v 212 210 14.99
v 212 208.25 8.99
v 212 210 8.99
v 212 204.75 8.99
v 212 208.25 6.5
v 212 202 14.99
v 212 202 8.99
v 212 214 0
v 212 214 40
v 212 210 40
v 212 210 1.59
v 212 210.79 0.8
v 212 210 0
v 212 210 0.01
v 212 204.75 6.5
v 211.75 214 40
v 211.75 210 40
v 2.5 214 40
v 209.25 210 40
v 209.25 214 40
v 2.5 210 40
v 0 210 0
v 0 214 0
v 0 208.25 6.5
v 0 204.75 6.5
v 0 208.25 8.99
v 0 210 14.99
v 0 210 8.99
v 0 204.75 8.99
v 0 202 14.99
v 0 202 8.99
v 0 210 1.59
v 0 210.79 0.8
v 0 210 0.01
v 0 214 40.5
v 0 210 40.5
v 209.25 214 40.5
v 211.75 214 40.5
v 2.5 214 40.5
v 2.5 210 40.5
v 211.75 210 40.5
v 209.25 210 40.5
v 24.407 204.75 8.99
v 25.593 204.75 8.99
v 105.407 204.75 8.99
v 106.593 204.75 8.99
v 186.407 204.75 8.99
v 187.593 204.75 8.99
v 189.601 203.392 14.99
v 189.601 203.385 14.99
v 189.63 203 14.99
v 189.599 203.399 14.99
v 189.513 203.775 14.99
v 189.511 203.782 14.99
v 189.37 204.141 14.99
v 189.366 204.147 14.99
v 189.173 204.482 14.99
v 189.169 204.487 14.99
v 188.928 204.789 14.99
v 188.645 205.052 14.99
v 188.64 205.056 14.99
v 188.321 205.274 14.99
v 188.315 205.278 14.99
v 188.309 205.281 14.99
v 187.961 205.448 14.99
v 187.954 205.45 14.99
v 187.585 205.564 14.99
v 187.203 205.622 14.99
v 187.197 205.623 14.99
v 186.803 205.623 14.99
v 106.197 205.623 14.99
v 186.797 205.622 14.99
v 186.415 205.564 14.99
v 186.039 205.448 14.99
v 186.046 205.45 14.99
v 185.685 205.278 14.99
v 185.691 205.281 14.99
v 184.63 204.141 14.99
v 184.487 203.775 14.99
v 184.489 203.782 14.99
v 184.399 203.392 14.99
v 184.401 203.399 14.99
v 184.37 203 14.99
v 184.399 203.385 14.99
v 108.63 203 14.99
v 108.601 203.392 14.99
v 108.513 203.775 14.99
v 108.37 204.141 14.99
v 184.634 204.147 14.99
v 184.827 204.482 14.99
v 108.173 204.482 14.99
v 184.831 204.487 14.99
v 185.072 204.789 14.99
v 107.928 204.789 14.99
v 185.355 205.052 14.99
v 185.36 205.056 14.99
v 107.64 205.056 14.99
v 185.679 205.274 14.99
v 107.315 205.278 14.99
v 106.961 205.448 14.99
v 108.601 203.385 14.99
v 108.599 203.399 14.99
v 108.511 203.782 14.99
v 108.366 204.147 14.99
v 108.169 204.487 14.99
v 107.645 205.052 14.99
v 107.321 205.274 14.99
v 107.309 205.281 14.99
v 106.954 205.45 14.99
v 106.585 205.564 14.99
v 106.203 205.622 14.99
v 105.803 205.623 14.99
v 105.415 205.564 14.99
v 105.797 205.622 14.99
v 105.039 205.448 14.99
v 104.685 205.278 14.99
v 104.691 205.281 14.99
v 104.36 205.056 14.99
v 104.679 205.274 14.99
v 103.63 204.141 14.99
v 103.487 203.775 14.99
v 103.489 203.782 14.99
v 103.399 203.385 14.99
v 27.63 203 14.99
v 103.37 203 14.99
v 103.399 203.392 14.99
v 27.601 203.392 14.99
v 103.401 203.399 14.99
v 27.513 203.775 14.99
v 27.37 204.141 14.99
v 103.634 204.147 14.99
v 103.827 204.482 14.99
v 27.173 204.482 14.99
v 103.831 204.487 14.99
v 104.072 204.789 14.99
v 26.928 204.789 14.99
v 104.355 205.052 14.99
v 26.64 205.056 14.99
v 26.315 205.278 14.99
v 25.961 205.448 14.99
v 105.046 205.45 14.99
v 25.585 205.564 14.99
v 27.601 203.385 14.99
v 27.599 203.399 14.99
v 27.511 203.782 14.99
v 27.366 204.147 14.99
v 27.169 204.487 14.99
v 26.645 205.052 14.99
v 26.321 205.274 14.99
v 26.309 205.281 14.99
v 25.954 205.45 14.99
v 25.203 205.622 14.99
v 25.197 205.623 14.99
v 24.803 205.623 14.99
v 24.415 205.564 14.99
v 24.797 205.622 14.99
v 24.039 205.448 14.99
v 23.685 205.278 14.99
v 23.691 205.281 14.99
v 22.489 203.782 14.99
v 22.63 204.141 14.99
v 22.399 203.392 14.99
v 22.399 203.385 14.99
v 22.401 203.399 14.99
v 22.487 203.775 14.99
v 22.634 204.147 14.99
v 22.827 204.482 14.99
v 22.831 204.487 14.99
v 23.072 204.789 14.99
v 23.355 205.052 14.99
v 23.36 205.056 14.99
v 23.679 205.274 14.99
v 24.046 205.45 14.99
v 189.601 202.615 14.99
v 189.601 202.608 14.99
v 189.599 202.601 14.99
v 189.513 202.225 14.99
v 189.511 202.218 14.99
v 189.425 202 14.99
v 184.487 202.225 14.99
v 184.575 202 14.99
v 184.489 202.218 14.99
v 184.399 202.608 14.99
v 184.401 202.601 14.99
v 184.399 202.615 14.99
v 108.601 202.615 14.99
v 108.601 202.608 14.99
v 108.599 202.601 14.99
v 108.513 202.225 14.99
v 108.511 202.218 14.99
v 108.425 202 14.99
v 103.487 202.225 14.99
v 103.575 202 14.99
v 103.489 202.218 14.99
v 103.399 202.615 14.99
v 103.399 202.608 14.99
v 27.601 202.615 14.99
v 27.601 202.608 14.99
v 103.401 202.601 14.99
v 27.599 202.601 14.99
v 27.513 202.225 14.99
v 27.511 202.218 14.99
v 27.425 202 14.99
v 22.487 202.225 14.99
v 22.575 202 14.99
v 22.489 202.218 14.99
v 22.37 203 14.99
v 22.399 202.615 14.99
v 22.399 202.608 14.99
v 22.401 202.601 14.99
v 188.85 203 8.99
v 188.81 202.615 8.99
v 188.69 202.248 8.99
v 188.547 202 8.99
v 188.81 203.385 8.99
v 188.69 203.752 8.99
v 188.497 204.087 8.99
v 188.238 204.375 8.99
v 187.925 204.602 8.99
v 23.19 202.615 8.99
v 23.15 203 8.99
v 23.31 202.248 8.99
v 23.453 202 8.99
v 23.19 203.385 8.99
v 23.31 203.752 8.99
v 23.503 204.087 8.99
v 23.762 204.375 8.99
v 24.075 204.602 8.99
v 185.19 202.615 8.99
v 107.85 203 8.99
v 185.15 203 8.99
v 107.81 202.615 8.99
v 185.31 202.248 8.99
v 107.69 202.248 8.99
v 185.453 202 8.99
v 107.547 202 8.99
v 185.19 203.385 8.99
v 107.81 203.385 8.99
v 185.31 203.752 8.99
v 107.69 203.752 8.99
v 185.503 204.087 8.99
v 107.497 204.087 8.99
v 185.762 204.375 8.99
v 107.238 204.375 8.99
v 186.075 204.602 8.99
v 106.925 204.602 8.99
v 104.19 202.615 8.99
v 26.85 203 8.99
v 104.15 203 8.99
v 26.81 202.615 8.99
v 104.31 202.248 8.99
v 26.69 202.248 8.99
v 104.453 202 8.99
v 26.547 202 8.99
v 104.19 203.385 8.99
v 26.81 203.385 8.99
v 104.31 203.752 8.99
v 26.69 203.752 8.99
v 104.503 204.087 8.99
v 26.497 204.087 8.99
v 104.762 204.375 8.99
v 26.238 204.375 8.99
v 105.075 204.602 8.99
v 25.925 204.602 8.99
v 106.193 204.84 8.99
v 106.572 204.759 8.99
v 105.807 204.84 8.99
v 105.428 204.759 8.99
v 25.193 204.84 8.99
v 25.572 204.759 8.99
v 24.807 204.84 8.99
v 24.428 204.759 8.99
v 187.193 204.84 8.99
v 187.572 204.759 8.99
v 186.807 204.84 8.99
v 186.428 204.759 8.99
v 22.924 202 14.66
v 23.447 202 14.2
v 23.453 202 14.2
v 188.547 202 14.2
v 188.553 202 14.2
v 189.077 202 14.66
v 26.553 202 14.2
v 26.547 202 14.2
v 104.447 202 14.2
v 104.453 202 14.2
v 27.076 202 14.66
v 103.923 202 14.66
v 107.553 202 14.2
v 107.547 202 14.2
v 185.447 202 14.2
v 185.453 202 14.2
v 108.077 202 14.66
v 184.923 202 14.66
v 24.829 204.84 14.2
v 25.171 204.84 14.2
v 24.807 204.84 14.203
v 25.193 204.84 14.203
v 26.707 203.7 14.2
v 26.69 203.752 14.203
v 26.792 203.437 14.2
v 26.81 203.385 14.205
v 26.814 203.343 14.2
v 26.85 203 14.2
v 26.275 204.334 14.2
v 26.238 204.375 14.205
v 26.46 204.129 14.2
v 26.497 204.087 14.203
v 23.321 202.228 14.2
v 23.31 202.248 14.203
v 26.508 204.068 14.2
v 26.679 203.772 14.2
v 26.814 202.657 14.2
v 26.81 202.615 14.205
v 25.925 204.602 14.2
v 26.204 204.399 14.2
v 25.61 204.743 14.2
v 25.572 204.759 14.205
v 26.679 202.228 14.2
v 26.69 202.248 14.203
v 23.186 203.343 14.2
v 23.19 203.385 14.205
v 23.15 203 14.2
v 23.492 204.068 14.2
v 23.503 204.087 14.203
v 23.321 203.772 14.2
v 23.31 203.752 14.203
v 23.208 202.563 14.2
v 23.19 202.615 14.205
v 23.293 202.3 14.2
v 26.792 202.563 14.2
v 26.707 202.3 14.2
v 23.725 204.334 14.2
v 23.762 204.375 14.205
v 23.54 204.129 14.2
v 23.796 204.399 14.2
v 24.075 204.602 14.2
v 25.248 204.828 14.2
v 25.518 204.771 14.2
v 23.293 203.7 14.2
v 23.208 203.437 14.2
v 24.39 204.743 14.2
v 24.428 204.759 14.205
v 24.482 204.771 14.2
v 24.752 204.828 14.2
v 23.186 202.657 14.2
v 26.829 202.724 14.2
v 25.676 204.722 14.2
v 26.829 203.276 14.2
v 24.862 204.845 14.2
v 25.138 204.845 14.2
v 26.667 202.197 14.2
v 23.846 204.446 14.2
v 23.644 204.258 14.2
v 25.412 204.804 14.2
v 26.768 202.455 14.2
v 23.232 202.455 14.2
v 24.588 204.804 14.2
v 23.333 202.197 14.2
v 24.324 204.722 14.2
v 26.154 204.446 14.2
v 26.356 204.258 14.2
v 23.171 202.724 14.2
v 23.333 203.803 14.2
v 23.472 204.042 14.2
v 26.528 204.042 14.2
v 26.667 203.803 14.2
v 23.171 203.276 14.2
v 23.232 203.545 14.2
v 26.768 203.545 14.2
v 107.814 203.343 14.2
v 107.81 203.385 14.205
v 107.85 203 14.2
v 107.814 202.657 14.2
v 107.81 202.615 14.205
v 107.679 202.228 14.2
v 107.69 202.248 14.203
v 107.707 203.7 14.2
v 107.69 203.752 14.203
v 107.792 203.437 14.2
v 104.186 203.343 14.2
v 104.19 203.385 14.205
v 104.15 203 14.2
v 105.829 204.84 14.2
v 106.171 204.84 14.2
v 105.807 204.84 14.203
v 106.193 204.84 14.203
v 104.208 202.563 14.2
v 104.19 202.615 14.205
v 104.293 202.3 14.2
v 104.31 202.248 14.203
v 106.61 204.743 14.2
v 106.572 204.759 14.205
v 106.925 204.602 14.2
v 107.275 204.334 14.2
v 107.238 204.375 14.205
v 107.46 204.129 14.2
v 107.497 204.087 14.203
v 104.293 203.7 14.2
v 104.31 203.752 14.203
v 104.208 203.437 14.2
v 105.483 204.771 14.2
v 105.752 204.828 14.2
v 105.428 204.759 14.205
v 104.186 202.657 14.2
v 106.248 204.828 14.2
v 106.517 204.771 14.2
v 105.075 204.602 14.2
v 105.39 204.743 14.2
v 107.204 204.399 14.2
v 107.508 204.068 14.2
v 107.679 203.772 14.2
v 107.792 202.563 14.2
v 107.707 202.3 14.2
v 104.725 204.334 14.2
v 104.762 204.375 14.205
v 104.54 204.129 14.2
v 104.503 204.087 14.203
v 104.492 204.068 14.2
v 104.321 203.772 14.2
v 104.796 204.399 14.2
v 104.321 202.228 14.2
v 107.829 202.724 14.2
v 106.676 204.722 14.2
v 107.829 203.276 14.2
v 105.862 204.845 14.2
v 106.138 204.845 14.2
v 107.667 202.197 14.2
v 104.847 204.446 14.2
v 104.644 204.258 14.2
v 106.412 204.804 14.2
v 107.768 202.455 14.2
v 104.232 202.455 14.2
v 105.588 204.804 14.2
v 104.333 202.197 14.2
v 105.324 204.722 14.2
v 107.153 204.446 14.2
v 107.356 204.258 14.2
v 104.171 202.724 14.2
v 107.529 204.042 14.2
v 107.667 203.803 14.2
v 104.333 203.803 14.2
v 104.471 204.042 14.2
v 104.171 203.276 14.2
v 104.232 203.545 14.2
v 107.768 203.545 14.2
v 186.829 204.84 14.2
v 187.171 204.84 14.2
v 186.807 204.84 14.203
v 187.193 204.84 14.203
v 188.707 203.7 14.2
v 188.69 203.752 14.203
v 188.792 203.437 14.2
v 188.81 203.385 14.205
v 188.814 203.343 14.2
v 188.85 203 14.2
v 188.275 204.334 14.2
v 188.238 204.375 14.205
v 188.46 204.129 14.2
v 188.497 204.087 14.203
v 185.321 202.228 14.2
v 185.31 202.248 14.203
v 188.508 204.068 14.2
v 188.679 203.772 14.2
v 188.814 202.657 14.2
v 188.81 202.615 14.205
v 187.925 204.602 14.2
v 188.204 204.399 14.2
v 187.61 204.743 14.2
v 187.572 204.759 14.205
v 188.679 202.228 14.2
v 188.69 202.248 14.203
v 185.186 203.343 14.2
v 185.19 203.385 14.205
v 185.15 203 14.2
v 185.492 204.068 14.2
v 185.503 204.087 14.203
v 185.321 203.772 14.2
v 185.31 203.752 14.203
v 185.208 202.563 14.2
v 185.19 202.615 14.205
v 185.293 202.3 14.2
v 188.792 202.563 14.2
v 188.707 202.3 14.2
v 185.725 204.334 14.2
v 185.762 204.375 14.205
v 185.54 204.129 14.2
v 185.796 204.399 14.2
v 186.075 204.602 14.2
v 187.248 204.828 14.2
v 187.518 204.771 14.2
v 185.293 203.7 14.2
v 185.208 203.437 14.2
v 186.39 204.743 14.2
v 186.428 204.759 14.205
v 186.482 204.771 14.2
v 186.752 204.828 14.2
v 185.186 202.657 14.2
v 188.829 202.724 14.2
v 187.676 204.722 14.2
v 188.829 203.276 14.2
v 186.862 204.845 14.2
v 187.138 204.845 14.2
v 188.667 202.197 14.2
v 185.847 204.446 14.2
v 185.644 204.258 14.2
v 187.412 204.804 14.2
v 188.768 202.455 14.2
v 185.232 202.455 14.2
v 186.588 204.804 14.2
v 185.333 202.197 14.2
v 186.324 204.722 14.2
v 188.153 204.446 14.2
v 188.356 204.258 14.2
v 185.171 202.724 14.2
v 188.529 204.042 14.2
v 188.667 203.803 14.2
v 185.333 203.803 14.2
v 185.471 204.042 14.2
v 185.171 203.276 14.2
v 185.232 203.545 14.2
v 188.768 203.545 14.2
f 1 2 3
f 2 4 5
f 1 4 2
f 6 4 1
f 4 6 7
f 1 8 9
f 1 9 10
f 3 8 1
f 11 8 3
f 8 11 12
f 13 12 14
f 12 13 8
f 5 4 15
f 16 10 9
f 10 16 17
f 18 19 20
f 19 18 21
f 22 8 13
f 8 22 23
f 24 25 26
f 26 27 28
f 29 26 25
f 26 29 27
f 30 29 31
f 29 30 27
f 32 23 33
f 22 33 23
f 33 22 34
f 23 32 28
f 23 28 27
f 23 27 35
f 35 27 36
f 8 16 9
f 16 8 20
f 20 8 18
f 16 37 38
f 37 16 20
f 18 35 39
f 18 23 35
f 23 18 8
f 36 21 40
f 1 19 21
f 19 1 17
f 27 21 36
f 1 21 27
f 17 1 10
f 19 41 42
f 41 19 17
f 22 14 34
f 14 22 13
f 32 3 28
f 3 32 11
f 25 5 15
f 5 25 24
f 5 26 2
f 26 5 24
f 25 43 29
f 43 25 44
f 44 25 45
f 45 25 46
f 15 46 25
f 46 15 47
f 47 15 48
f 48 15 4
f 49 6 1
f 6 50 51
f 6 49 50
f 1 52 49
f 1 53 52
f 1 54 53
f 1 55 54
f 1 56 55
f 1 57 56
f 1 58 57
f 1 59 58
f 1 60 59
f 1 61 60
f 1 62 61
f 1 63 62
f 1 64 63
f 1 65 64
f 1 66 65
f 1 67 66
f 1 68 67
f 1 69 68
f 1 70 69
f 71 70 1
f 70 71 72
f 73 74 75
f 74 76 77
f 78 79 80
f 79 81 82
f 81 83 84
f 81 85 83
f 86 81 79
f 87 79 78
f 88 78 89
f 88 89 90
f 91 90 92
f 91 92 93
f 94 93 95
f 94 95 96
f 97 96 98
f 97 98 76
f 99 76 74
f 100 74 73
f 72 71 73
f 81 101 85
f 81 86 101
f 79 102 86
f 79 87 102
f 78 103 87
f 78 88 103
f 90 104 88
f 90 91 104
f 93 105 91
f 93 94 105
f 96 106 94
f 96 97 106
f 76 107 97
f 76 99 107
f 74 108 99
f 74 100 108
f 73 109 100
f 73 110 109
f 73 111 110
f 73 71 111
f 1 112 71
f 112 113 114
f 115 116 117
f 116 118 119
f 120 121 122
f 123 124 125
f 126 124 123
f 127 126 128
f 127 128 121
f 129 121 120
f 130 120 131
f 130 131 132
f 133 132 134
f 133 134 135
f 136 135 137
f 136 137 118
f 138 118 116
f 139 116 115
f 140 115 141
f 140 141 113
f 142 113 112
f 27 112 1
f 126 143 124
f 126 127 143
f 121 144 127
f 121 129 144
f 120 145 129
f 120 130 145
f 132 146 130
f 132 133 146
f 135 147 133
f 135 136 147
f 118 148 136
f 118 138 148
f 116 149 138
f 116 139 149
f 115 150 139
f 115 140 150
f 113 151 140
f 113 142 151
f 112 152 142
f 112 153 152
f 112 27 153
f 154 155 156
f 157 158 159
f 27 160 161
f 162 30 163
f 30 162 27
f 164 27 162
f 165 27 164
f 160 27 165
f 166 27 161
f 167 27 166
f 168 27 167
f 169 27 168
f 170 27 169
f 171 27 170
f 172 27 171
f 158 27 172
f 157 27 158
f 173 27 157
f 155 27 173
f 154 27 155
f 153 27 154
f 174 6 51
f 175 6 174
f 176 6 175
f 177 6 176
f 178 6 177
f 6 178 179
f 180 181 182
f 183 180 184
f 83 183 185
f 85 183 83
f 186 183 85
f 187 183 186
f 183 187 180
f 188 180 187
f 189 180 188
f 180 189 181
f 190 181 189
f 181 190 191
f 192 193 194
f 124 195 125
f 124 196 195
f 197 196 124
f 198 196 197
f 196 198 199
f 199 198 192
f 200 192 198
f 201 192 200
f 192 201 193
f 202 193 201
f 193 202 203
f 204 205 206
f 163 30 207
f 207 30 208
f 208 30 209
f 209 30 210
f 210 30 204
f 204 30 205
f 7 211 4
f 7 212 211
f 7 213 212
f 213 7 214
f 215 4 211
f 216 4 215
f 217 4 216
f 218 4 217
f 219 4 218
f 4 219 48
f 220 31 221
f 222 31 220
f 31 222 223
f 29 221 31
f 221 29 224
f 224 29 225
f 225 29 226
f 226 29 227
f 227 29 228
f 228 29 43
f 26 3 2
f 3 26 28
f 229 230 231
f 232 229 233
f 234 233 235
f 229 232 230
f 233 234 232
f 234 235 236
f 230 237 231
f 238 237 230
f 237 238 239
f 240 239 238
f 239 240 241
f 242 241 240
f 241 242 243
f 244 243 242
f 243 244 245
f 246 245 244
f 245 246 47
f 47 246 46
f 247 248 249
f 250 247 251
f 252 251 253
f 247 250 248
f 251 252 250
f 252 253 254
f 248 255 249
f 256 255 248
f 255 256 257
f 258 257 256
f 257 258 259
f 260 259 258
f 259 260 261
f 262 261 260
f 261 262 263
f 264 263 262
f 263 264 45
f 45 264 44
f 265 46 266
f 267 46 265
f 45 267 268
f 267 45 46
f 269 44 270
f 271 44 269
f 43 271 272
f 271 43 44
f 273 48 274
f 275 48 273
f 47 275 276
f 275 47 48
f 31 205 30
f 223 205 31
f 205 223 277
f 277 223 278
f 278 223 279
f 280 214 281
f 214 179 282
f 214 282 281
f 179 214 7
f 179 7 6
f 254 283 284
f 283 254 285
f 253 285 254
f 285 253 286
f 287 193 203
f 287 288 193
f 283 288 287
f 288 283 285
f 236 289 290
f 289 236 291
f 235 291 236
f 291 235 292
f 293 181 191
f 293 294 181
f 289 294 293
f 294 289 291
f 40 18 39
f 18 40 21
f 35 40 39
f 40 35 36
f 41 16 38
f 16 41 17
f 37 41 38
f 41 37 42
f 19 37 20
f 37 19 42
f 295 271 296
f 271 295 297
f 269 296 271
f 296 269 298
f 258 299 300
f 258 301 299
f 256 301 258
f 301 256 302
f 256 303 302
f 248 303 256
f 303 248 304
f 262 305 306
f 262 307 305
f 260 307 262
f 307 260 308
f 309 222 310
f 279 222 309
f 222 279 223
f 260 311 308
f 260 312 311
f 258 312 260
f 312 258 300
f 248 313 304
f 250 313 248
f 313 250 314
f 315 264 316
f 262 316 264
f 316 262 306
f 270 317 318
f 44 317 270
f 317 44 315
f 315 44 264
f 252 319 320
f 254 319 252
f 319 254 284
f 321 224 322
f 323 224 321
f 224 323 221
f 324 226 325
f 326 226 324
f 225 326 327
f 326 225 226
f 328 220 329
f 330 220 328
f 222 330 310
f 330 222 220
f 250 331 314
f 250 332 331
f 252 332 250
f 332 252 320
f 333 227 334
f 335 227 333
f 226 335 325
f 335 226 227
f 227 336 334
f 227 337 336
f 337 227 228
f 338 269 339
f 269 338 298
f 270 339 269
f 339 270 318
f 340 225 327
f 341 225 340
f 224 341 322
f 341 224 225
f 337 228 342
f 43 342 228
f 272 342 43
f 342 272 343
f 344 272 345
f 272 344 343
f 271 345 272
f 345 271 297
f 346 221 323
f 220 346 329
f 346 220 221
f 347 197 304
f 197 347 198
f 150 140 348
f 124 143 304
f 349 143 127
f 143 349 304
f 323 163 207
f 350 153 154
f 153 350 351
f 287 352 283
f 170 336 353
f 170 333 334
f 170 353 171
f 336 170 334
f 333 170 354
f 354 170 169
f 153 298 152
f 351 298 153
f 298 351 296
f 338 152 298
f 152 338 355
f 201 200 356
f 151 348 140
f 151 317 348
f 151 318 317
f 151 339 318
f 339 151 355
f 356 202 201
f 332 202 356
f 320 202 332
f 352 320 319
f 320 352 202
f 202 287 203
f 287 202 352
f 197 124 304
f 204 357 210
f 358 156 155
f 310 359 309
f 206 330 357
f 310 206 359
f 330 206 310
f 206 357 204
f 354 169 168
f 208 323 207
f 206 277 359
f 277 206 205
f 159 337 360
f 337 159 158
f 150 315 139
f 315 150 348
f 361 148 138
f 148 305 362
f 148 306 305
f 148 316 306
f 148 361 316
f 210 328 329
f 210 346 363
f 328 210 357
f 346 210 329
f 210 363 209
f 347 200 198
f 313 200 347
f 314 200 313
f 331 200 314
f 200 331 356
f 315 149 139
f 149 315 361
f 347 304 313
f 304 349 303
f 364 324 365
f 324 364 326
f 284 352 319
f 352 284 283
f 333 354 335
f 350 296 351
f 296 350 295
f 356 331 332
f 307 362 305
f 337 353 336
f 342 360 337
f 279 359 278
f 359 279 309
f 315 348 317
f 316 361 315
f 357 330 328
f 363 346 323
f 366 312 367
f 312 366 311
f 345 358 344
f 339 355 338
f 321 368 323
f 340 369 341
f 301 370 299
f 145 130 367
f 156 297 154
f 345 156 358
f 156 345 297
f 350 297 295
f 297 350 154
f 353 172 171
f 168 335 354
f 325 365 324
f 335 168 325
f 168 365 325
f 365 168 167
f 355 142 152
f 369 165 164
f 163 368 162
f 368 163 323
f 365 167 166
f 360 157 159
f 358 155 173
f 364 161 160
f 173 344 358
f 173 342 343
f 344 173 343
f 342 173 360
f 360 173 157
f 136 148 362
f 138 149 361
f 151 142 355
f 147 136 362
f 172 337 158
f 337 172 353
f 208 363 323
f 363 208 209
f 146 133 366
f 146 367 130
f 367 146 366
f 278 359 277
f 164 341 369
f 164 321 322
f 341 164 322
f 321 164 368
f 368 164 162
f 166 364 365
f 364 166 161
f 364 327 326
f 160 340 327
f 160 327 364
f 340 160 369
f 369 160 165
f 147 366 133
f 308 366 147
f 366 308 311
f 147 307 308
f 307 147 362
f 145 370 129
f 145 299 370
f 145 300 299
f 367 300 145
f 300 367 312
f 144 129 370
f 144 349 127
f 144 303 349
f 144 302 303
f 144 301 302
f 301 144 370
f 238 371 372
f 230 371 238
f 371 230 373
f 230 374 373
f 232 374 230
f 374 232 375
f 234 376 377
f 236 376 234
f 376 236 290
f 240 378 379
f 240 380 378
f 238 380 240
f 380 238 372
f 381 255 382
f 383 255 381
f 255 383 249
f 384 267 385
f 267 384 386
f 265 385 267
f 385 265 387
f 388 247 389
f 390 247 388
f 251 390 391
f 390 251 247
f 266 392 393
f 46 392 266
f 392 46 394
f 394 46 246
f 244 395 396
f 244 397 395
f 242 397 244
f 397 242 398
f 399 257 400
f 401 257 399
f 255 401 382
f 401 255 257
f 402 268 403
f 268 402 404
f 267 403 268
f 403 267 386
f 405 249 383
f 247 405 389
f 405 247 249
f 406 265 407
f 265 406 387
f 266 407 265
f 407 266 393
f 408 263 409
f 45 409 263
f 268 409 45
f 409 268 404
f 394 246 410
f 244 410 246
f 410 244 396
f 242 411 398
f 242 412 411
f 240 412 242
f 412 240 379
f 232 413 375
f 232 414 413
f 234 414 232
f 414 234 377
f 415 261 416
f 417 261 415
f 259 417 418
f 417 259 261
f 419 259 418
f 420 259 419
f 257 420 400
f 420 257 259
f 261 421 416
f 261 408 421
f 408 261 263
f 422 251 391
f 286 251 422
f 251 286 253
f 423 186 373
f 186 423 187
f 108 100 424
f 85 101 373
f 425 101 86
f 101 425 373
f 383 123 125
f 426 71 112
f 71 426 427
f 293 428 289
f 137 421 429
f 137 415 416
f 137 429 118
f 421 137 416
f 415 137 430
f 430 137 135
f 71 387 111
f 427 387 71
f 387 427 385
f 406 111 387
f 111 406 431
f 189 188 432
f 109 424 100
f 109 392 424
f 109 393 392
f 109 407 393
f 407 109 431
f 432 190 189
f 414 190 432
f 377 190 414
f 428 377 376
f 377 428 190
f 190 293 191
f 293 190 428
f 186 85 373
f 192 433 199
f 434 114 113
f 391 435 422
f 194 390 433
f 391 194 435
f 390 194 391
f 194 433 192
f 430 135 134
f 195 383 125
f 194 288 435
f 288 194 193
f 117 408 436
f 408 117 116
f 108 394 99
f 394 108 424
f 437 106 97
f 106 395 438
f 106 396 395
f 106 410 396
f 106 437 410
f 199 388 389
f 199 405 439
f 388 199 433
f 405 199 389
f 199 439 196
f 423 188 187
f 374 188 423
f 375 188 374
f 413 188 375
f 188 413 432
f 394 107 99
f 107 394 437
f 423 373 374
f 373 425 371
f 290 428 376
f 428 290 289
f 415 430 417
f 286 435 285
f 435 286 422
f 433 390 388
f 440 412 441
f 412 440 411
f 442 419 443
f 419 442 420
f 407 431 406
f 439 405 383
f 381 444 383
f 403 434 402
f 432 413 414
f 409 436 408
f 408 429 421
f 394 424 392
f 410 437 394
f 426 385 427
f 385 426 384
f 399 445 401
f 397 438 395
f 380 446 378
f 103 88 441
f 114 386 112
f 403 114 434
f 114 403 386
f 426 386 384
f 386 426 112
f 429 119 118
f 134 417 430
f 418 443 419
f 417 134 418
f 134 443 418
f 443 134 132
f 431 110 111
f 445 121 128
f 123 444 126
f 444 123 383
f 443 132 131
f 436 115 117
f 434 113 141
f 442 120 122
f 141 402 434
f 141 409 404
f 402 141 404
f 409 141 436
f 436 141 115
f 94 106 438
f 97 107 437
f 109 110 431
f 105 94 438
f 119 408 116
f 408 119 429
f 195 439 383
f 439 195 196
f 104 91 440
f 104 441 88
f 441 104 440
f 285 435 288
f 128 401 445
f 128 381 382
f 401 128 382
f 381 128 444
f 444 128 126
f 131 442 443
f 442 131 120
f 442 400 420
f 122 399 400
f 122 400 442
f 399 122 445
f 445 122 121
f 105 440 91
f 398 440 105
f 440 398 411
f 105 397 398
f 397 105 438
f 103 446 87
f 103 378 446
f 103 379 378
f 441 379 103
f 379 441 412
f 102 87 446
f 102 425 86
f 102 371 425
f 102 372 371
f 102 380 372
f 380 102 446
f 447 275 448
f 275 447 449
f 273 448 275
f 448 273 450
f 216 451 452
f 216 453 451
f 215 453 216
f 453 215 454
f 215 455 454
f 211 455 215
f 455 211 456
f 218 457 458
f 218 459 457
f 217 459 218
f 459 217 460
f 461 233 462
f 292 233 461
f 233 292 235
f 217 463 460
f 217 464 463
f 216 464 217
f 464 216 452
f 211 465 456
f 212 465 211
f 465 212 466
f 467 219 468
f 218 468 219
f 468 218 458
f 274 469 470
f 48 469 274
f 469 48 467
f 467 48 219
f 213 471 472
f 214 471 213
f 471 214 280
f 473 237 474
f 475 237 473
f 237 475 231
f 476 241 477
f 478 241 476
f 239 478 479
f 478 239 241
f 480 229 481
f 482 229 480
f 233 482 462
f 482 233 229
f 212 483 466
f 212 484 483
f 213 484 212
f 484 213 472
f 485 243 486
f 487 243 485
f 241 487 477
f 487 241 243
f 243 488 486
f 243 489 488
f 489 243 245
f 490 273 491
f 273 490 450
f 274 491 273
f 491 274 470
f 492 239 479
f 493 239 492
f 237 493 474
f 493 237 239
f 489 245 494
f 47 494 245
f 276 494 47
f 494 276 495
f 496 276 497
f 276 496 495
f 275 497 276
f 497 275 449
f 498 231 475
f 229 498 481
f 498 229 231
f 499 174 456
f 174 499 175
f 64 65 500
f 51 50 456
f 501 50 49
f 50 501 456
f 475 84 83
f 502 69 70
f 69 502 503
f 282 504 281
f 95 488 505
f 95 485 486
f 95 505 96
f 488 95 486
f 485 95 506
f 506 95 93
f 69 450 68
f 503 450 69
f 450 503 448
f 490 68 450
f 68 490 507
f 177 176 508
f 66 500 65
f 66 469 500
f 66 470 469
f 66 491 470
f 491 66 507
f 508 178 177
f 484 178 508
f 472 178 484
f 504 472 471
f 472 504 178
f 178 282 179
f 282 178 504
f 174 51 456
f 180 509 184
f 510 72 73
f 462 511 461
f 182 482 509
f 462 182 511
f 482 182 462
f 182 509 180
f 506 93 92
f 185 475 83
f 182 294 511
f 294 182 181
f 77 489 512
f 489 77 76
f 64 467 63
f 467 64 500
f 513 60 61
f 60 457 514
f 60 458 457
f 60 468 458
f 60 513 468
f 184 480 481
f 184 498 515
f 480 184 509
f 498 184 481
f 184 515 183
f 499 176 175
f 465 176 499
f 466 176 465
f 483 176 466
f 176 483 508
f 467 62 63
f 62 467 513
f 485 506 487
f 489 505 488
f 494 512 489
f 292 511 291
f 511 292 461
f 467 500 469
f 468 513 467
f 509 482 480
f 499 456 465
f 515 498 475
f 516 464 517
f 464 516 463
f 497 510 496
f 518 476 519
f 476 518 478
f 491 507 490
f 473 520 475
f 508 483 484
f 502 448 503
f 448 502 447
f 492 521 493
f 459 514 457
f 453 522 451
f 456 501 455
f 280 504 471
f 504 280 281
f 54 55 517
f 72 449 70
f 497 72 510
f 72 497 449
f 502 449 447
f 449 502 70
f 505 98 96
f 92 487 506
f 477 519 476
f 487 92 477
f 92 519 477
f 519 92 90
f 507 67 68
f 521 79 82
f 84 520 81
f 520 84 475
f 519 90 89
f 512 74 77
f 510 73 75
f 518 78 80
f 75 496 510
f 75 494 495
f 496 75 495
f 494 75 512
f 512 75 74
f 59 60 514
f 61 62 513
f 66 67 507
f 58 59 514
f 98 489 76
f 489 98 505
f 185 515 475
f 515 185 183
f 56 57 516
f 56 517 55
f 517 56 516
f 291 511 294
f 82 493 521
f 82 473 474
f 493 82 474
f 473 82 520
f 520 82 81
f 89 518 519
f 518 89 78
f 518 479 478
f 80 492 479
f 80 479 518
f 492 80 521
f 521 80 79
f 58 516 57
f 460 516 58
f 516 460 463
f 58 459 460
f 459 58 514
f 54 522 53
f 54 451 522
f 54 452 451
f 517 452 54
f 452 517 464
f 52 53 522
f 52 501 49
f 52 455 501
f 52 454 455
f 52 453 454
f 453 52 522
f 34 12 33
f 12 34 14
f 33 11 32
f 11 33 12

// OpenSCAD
// =====================================================================
// parts/rear_panel.scad  ->  rear_panel()
//
// Part 7 of 9.  REAR closure panel (Edge-beta), modeled IN the GLOBAL
// ASSEMBLY FRAME (origin = front-bottom-left interior corner of chassis;
// +X width left->right, +Y depth front->rear, +Z height bottom->top) so it
// mates with neighbors with NO transform in main.scad.
//
// *** BLANK 1U CLOSURE ***  Rear ports (USB-C / SD / 3.5mm audio) are
// DEFERRED.  This is a flat blank panel; a future iteration or a rear
// swap-insert will carry the actual I/O cutouts.  NO cutouts here.
//
// Assembly region:
//   X  0 .. REAR_W (212)
//   Y  DEPTH(210) .. DEPTH+REAR_T(214)   (thin slab; FRONT face Y=DEPTH)
//   Z  0 .. REAR_H (40)
//
// Features (closure + location only):
//   - Main rear plate (X 0..212, Y 210..214, Z 0..40)
//   - BOTTOM tongue/flange that beds into the baseplate rear lip and bolts
//     down: a flange in front of the panel carrying M3 CLEARANCE holes
//     (a few across X) into the baseplate rear-lip self-tap points.
//   - SIDE tabs that locate against the wall tops (drop into the wall-top
//     grooves on the L/R upstands), with FIT_CLEARANCE on the mating.
//   - All mating edges + the BOTTOM edge get a CHAMFER lead-in/relief.
//
// PRINTABILITY: prints FLAT on its back (outer face Y=DEPTH+REAR_T down on
// the bed) -> the 212 x 40 plate is the largest face, zero supports. The
// bed-plane footprint is X(212) x Z(40); REAR_T(4) is the vertical print
// axis. The chamfered bottom edge prints as a clean 45deg relief. M3
// clearance holes pass straight through the flange (no bridging).
//
// CONVENTION: shared globals from params.scad; parametric joinery from
// lib/joinery.scad (modules take explicit args, do not read globals).
// =====================================================================

include <params.scad>
use <../lib/joinery.scad>


// ---------------------------------------------------------------------
// Local helper values (derived from frozen params; no param redefinition)
// ---------------------------------------------------------------------
PANEL_Y0          = DEPTH;                 // = 210  panel inner (front) face
PANEL_Y1          = DEPTH + REAR_T;        // = 214  panel outer (rear) face

// --- baseplate rear-lip interface (local derived; no param dependency) -
// The baseplate rear lip rises to LIP_TOP_Z and presents an upward-opening
// groove the panel tongue beds into, plus self-tap points for the flange.
LIP_TOP_Z         = FLOOR + 6;             // = 9   baseplate rear-lip top Z
GROOVE_DEPTH      = 3.0;                   // baseplate rear-lip groove depth
GROOVE_FLOOR_Z    = LIP_TOP_Z - GROOVE_DEPTH;   // = 6   floor of groove

// --- bottom tongue (beds DOWN into the baseplate rear-lip groove) ------
TONGUE_Y_CTR      = (DEPTH - REAR_T - 1.5) + REAR_T/2;   // groove center Y
TONGUE_T          = REAR_T - FIT_CLEARANCE;  // loose fit in groove (Y)
TONGUE_BOT_Z      = GROOVE_FLOOR_Z + FIT_CLEARANCE;   // seat clearance
TONGUE_TOP_Z      = LIP_TOP_Z + 0.5;       // overlaps up into panel body

// --- bottom mounting flange + M3 clearance columns ---------------------
// a bar in front of the panel front face at the lip top; the M3 clearance
// holes drop through it into the baseplate rear-lip self-tap points.
FLANGE_T          = 8;                      // flange depth toward body (-Y)
FLANGE_H          = 6;                      // flange height (Z) above lip top
FLANGE_Y1         = PANEL_Y0;               // flange back edge = panel front
FLANGE_Y0         = PANEL_Y0 - FLANGE_T;    // flange front edge
REAR_FASTEN_Y     = DEPTH - REAR_T - 3;     // self-tap column Y (mirror baseplate)
// X columns of the bottom M3 mounts (a few across X). Spread across BODY_W.
REAR_FASTEN_X     = [ 25, REAR_W/2, REAR_W - 25 ];   // 3x M3 mount columns

// --- side location tabs (locate against the wall tops) -----------------
// The L/R upstands present an upward-opening groove along their inner top
// edge (Z UPSTAND_H-3 .. UPSTAND_H); the panel side tabs drop into them.
WALLTOP_GROOVE_W  = 3.0;                    // wall-top channel width (X)
WALLTOP_GROOVE_D  = 3.0;                    // wall-top channel depth (Z)
SIDE_TAB_W        = WALLTOP_GROOVE_W - FIT_CLEARANCE;  // loose fit in X
SIDE_TAB_T        = REAR_T;                 // tab thickness (Y) = panel thick
SIDE_TAB_TOP_Z    = UPSTAND_H + 0.5;        // overlaps up into panel body
SIDE_TAB_BOT_Z    = UPSTAND_H - WALLTOP_GROOVE_D + FIT_CLEARANCE;  // seat clr
SIDE_TAB_X_L      = WALL_T - WALLTOP_GROOVE_W;  // left channel start X (0)
SIDE_TAB_X_R      = (BODY_W - WALL_T) + (WALLTOP_GROOVE_W - SIDE_TAB_W)/2;


module rear_panel() {

    difference() {

        union() {

            // ---- 1. Main rear plate (the blank closure) ---------------
            translate([0, PANEL_Y0, 0])
                cube([REAR_W, REAR_T, REAR_H]);

            // ---- 2. Bottom tongue into baseplate rear-lip groove ------
            translate([0, TONGUE_Y_CTR - TONGUE_T/2, TONGUE_BOT_Z])
                cube([REAR_W, TONGUE_T, TONGUE_TOP_Z - TONGUE_BOT_Z]);

            // ---- 3. Bottom mounting flange (in front of panel, -Y) ----
            translate([0, FLANGE_Y0, LIP_TOP_Z - EPS])
                cube([REAR_W, FLANGE_T + EPS, FLANGE_H]);

            // ---- 4. Side location tabs into wall-top grooves ----------
            // left
            translate([SIDE_TAB_X_L, PANEL_Y0, SIDE_TAB_BOT_Z])
                cube([SIDE_TAB_W, SIDE_TAB_T,
                      SIDE_TAB_TOP_Z - SIDE_TAB_BOT_Z]);
            // right
            translate([SIDE_TAB_X_R, PANEL_Y0, SIDE_TAB_BOT_Z])
                cube([SIDE_TAB_W, SIDE_TAB_T,
                      SIDE_TAB_TOP_Z - SIDE_TAB_BOT_Z]);
        }

        // ===== NEGATIVE FEATURES (difference) ========================
        // NO I/O cutouts: this is a BLANK closure. Only the bottom M3
        // clearance holes + chamfer reliefs are cut.

        // ---- A. M3 clearance holes through the bottom flange --------
        // axis +Z; drop down into the baseplate rear-lip self-tap points.
        // CHAMFER lead-in countersink at the top of each hole.
        for (fx = REAR_FASTEN_X) {
            translate([fx, REAR_FASTEN_Y, LIP_TOP_Z - EPS])
                cylinder(h = FLANGE_H + 2*EPS, d = M3_CLEAR);
            // chamfer lead-in (top entry)
            translate([fx, REAR_FASTEN_Y, LIP_TOP_Z + FLANGE_H - CHAMFER])
                cylinder(h = CHAMFER + EPS,
                         d1 = M3_CLEAR, d2 = M3_CLEAR + 2*CHAMFER);
        }

        // ---- B. Bottom-edge chamfer relief (along the panel base) ---
        // 45deg relief on the front-bottom edge so the panel seats clean
        // and prints a tidy first layer. Runs full width in X.
        translate([-EPS, PANEL_Y0 - EPS, 0])
            rotate([45, 0, 0])
                cube([REAR_W + 2*EPS, CHAMFER*sqrt(2), CHAMFER*sqrt(2)]);
    }
}


// ---- standalone render (renders this part alone) ---------------------
$fa = 1; $fs = 0.4;
rear_panel();
